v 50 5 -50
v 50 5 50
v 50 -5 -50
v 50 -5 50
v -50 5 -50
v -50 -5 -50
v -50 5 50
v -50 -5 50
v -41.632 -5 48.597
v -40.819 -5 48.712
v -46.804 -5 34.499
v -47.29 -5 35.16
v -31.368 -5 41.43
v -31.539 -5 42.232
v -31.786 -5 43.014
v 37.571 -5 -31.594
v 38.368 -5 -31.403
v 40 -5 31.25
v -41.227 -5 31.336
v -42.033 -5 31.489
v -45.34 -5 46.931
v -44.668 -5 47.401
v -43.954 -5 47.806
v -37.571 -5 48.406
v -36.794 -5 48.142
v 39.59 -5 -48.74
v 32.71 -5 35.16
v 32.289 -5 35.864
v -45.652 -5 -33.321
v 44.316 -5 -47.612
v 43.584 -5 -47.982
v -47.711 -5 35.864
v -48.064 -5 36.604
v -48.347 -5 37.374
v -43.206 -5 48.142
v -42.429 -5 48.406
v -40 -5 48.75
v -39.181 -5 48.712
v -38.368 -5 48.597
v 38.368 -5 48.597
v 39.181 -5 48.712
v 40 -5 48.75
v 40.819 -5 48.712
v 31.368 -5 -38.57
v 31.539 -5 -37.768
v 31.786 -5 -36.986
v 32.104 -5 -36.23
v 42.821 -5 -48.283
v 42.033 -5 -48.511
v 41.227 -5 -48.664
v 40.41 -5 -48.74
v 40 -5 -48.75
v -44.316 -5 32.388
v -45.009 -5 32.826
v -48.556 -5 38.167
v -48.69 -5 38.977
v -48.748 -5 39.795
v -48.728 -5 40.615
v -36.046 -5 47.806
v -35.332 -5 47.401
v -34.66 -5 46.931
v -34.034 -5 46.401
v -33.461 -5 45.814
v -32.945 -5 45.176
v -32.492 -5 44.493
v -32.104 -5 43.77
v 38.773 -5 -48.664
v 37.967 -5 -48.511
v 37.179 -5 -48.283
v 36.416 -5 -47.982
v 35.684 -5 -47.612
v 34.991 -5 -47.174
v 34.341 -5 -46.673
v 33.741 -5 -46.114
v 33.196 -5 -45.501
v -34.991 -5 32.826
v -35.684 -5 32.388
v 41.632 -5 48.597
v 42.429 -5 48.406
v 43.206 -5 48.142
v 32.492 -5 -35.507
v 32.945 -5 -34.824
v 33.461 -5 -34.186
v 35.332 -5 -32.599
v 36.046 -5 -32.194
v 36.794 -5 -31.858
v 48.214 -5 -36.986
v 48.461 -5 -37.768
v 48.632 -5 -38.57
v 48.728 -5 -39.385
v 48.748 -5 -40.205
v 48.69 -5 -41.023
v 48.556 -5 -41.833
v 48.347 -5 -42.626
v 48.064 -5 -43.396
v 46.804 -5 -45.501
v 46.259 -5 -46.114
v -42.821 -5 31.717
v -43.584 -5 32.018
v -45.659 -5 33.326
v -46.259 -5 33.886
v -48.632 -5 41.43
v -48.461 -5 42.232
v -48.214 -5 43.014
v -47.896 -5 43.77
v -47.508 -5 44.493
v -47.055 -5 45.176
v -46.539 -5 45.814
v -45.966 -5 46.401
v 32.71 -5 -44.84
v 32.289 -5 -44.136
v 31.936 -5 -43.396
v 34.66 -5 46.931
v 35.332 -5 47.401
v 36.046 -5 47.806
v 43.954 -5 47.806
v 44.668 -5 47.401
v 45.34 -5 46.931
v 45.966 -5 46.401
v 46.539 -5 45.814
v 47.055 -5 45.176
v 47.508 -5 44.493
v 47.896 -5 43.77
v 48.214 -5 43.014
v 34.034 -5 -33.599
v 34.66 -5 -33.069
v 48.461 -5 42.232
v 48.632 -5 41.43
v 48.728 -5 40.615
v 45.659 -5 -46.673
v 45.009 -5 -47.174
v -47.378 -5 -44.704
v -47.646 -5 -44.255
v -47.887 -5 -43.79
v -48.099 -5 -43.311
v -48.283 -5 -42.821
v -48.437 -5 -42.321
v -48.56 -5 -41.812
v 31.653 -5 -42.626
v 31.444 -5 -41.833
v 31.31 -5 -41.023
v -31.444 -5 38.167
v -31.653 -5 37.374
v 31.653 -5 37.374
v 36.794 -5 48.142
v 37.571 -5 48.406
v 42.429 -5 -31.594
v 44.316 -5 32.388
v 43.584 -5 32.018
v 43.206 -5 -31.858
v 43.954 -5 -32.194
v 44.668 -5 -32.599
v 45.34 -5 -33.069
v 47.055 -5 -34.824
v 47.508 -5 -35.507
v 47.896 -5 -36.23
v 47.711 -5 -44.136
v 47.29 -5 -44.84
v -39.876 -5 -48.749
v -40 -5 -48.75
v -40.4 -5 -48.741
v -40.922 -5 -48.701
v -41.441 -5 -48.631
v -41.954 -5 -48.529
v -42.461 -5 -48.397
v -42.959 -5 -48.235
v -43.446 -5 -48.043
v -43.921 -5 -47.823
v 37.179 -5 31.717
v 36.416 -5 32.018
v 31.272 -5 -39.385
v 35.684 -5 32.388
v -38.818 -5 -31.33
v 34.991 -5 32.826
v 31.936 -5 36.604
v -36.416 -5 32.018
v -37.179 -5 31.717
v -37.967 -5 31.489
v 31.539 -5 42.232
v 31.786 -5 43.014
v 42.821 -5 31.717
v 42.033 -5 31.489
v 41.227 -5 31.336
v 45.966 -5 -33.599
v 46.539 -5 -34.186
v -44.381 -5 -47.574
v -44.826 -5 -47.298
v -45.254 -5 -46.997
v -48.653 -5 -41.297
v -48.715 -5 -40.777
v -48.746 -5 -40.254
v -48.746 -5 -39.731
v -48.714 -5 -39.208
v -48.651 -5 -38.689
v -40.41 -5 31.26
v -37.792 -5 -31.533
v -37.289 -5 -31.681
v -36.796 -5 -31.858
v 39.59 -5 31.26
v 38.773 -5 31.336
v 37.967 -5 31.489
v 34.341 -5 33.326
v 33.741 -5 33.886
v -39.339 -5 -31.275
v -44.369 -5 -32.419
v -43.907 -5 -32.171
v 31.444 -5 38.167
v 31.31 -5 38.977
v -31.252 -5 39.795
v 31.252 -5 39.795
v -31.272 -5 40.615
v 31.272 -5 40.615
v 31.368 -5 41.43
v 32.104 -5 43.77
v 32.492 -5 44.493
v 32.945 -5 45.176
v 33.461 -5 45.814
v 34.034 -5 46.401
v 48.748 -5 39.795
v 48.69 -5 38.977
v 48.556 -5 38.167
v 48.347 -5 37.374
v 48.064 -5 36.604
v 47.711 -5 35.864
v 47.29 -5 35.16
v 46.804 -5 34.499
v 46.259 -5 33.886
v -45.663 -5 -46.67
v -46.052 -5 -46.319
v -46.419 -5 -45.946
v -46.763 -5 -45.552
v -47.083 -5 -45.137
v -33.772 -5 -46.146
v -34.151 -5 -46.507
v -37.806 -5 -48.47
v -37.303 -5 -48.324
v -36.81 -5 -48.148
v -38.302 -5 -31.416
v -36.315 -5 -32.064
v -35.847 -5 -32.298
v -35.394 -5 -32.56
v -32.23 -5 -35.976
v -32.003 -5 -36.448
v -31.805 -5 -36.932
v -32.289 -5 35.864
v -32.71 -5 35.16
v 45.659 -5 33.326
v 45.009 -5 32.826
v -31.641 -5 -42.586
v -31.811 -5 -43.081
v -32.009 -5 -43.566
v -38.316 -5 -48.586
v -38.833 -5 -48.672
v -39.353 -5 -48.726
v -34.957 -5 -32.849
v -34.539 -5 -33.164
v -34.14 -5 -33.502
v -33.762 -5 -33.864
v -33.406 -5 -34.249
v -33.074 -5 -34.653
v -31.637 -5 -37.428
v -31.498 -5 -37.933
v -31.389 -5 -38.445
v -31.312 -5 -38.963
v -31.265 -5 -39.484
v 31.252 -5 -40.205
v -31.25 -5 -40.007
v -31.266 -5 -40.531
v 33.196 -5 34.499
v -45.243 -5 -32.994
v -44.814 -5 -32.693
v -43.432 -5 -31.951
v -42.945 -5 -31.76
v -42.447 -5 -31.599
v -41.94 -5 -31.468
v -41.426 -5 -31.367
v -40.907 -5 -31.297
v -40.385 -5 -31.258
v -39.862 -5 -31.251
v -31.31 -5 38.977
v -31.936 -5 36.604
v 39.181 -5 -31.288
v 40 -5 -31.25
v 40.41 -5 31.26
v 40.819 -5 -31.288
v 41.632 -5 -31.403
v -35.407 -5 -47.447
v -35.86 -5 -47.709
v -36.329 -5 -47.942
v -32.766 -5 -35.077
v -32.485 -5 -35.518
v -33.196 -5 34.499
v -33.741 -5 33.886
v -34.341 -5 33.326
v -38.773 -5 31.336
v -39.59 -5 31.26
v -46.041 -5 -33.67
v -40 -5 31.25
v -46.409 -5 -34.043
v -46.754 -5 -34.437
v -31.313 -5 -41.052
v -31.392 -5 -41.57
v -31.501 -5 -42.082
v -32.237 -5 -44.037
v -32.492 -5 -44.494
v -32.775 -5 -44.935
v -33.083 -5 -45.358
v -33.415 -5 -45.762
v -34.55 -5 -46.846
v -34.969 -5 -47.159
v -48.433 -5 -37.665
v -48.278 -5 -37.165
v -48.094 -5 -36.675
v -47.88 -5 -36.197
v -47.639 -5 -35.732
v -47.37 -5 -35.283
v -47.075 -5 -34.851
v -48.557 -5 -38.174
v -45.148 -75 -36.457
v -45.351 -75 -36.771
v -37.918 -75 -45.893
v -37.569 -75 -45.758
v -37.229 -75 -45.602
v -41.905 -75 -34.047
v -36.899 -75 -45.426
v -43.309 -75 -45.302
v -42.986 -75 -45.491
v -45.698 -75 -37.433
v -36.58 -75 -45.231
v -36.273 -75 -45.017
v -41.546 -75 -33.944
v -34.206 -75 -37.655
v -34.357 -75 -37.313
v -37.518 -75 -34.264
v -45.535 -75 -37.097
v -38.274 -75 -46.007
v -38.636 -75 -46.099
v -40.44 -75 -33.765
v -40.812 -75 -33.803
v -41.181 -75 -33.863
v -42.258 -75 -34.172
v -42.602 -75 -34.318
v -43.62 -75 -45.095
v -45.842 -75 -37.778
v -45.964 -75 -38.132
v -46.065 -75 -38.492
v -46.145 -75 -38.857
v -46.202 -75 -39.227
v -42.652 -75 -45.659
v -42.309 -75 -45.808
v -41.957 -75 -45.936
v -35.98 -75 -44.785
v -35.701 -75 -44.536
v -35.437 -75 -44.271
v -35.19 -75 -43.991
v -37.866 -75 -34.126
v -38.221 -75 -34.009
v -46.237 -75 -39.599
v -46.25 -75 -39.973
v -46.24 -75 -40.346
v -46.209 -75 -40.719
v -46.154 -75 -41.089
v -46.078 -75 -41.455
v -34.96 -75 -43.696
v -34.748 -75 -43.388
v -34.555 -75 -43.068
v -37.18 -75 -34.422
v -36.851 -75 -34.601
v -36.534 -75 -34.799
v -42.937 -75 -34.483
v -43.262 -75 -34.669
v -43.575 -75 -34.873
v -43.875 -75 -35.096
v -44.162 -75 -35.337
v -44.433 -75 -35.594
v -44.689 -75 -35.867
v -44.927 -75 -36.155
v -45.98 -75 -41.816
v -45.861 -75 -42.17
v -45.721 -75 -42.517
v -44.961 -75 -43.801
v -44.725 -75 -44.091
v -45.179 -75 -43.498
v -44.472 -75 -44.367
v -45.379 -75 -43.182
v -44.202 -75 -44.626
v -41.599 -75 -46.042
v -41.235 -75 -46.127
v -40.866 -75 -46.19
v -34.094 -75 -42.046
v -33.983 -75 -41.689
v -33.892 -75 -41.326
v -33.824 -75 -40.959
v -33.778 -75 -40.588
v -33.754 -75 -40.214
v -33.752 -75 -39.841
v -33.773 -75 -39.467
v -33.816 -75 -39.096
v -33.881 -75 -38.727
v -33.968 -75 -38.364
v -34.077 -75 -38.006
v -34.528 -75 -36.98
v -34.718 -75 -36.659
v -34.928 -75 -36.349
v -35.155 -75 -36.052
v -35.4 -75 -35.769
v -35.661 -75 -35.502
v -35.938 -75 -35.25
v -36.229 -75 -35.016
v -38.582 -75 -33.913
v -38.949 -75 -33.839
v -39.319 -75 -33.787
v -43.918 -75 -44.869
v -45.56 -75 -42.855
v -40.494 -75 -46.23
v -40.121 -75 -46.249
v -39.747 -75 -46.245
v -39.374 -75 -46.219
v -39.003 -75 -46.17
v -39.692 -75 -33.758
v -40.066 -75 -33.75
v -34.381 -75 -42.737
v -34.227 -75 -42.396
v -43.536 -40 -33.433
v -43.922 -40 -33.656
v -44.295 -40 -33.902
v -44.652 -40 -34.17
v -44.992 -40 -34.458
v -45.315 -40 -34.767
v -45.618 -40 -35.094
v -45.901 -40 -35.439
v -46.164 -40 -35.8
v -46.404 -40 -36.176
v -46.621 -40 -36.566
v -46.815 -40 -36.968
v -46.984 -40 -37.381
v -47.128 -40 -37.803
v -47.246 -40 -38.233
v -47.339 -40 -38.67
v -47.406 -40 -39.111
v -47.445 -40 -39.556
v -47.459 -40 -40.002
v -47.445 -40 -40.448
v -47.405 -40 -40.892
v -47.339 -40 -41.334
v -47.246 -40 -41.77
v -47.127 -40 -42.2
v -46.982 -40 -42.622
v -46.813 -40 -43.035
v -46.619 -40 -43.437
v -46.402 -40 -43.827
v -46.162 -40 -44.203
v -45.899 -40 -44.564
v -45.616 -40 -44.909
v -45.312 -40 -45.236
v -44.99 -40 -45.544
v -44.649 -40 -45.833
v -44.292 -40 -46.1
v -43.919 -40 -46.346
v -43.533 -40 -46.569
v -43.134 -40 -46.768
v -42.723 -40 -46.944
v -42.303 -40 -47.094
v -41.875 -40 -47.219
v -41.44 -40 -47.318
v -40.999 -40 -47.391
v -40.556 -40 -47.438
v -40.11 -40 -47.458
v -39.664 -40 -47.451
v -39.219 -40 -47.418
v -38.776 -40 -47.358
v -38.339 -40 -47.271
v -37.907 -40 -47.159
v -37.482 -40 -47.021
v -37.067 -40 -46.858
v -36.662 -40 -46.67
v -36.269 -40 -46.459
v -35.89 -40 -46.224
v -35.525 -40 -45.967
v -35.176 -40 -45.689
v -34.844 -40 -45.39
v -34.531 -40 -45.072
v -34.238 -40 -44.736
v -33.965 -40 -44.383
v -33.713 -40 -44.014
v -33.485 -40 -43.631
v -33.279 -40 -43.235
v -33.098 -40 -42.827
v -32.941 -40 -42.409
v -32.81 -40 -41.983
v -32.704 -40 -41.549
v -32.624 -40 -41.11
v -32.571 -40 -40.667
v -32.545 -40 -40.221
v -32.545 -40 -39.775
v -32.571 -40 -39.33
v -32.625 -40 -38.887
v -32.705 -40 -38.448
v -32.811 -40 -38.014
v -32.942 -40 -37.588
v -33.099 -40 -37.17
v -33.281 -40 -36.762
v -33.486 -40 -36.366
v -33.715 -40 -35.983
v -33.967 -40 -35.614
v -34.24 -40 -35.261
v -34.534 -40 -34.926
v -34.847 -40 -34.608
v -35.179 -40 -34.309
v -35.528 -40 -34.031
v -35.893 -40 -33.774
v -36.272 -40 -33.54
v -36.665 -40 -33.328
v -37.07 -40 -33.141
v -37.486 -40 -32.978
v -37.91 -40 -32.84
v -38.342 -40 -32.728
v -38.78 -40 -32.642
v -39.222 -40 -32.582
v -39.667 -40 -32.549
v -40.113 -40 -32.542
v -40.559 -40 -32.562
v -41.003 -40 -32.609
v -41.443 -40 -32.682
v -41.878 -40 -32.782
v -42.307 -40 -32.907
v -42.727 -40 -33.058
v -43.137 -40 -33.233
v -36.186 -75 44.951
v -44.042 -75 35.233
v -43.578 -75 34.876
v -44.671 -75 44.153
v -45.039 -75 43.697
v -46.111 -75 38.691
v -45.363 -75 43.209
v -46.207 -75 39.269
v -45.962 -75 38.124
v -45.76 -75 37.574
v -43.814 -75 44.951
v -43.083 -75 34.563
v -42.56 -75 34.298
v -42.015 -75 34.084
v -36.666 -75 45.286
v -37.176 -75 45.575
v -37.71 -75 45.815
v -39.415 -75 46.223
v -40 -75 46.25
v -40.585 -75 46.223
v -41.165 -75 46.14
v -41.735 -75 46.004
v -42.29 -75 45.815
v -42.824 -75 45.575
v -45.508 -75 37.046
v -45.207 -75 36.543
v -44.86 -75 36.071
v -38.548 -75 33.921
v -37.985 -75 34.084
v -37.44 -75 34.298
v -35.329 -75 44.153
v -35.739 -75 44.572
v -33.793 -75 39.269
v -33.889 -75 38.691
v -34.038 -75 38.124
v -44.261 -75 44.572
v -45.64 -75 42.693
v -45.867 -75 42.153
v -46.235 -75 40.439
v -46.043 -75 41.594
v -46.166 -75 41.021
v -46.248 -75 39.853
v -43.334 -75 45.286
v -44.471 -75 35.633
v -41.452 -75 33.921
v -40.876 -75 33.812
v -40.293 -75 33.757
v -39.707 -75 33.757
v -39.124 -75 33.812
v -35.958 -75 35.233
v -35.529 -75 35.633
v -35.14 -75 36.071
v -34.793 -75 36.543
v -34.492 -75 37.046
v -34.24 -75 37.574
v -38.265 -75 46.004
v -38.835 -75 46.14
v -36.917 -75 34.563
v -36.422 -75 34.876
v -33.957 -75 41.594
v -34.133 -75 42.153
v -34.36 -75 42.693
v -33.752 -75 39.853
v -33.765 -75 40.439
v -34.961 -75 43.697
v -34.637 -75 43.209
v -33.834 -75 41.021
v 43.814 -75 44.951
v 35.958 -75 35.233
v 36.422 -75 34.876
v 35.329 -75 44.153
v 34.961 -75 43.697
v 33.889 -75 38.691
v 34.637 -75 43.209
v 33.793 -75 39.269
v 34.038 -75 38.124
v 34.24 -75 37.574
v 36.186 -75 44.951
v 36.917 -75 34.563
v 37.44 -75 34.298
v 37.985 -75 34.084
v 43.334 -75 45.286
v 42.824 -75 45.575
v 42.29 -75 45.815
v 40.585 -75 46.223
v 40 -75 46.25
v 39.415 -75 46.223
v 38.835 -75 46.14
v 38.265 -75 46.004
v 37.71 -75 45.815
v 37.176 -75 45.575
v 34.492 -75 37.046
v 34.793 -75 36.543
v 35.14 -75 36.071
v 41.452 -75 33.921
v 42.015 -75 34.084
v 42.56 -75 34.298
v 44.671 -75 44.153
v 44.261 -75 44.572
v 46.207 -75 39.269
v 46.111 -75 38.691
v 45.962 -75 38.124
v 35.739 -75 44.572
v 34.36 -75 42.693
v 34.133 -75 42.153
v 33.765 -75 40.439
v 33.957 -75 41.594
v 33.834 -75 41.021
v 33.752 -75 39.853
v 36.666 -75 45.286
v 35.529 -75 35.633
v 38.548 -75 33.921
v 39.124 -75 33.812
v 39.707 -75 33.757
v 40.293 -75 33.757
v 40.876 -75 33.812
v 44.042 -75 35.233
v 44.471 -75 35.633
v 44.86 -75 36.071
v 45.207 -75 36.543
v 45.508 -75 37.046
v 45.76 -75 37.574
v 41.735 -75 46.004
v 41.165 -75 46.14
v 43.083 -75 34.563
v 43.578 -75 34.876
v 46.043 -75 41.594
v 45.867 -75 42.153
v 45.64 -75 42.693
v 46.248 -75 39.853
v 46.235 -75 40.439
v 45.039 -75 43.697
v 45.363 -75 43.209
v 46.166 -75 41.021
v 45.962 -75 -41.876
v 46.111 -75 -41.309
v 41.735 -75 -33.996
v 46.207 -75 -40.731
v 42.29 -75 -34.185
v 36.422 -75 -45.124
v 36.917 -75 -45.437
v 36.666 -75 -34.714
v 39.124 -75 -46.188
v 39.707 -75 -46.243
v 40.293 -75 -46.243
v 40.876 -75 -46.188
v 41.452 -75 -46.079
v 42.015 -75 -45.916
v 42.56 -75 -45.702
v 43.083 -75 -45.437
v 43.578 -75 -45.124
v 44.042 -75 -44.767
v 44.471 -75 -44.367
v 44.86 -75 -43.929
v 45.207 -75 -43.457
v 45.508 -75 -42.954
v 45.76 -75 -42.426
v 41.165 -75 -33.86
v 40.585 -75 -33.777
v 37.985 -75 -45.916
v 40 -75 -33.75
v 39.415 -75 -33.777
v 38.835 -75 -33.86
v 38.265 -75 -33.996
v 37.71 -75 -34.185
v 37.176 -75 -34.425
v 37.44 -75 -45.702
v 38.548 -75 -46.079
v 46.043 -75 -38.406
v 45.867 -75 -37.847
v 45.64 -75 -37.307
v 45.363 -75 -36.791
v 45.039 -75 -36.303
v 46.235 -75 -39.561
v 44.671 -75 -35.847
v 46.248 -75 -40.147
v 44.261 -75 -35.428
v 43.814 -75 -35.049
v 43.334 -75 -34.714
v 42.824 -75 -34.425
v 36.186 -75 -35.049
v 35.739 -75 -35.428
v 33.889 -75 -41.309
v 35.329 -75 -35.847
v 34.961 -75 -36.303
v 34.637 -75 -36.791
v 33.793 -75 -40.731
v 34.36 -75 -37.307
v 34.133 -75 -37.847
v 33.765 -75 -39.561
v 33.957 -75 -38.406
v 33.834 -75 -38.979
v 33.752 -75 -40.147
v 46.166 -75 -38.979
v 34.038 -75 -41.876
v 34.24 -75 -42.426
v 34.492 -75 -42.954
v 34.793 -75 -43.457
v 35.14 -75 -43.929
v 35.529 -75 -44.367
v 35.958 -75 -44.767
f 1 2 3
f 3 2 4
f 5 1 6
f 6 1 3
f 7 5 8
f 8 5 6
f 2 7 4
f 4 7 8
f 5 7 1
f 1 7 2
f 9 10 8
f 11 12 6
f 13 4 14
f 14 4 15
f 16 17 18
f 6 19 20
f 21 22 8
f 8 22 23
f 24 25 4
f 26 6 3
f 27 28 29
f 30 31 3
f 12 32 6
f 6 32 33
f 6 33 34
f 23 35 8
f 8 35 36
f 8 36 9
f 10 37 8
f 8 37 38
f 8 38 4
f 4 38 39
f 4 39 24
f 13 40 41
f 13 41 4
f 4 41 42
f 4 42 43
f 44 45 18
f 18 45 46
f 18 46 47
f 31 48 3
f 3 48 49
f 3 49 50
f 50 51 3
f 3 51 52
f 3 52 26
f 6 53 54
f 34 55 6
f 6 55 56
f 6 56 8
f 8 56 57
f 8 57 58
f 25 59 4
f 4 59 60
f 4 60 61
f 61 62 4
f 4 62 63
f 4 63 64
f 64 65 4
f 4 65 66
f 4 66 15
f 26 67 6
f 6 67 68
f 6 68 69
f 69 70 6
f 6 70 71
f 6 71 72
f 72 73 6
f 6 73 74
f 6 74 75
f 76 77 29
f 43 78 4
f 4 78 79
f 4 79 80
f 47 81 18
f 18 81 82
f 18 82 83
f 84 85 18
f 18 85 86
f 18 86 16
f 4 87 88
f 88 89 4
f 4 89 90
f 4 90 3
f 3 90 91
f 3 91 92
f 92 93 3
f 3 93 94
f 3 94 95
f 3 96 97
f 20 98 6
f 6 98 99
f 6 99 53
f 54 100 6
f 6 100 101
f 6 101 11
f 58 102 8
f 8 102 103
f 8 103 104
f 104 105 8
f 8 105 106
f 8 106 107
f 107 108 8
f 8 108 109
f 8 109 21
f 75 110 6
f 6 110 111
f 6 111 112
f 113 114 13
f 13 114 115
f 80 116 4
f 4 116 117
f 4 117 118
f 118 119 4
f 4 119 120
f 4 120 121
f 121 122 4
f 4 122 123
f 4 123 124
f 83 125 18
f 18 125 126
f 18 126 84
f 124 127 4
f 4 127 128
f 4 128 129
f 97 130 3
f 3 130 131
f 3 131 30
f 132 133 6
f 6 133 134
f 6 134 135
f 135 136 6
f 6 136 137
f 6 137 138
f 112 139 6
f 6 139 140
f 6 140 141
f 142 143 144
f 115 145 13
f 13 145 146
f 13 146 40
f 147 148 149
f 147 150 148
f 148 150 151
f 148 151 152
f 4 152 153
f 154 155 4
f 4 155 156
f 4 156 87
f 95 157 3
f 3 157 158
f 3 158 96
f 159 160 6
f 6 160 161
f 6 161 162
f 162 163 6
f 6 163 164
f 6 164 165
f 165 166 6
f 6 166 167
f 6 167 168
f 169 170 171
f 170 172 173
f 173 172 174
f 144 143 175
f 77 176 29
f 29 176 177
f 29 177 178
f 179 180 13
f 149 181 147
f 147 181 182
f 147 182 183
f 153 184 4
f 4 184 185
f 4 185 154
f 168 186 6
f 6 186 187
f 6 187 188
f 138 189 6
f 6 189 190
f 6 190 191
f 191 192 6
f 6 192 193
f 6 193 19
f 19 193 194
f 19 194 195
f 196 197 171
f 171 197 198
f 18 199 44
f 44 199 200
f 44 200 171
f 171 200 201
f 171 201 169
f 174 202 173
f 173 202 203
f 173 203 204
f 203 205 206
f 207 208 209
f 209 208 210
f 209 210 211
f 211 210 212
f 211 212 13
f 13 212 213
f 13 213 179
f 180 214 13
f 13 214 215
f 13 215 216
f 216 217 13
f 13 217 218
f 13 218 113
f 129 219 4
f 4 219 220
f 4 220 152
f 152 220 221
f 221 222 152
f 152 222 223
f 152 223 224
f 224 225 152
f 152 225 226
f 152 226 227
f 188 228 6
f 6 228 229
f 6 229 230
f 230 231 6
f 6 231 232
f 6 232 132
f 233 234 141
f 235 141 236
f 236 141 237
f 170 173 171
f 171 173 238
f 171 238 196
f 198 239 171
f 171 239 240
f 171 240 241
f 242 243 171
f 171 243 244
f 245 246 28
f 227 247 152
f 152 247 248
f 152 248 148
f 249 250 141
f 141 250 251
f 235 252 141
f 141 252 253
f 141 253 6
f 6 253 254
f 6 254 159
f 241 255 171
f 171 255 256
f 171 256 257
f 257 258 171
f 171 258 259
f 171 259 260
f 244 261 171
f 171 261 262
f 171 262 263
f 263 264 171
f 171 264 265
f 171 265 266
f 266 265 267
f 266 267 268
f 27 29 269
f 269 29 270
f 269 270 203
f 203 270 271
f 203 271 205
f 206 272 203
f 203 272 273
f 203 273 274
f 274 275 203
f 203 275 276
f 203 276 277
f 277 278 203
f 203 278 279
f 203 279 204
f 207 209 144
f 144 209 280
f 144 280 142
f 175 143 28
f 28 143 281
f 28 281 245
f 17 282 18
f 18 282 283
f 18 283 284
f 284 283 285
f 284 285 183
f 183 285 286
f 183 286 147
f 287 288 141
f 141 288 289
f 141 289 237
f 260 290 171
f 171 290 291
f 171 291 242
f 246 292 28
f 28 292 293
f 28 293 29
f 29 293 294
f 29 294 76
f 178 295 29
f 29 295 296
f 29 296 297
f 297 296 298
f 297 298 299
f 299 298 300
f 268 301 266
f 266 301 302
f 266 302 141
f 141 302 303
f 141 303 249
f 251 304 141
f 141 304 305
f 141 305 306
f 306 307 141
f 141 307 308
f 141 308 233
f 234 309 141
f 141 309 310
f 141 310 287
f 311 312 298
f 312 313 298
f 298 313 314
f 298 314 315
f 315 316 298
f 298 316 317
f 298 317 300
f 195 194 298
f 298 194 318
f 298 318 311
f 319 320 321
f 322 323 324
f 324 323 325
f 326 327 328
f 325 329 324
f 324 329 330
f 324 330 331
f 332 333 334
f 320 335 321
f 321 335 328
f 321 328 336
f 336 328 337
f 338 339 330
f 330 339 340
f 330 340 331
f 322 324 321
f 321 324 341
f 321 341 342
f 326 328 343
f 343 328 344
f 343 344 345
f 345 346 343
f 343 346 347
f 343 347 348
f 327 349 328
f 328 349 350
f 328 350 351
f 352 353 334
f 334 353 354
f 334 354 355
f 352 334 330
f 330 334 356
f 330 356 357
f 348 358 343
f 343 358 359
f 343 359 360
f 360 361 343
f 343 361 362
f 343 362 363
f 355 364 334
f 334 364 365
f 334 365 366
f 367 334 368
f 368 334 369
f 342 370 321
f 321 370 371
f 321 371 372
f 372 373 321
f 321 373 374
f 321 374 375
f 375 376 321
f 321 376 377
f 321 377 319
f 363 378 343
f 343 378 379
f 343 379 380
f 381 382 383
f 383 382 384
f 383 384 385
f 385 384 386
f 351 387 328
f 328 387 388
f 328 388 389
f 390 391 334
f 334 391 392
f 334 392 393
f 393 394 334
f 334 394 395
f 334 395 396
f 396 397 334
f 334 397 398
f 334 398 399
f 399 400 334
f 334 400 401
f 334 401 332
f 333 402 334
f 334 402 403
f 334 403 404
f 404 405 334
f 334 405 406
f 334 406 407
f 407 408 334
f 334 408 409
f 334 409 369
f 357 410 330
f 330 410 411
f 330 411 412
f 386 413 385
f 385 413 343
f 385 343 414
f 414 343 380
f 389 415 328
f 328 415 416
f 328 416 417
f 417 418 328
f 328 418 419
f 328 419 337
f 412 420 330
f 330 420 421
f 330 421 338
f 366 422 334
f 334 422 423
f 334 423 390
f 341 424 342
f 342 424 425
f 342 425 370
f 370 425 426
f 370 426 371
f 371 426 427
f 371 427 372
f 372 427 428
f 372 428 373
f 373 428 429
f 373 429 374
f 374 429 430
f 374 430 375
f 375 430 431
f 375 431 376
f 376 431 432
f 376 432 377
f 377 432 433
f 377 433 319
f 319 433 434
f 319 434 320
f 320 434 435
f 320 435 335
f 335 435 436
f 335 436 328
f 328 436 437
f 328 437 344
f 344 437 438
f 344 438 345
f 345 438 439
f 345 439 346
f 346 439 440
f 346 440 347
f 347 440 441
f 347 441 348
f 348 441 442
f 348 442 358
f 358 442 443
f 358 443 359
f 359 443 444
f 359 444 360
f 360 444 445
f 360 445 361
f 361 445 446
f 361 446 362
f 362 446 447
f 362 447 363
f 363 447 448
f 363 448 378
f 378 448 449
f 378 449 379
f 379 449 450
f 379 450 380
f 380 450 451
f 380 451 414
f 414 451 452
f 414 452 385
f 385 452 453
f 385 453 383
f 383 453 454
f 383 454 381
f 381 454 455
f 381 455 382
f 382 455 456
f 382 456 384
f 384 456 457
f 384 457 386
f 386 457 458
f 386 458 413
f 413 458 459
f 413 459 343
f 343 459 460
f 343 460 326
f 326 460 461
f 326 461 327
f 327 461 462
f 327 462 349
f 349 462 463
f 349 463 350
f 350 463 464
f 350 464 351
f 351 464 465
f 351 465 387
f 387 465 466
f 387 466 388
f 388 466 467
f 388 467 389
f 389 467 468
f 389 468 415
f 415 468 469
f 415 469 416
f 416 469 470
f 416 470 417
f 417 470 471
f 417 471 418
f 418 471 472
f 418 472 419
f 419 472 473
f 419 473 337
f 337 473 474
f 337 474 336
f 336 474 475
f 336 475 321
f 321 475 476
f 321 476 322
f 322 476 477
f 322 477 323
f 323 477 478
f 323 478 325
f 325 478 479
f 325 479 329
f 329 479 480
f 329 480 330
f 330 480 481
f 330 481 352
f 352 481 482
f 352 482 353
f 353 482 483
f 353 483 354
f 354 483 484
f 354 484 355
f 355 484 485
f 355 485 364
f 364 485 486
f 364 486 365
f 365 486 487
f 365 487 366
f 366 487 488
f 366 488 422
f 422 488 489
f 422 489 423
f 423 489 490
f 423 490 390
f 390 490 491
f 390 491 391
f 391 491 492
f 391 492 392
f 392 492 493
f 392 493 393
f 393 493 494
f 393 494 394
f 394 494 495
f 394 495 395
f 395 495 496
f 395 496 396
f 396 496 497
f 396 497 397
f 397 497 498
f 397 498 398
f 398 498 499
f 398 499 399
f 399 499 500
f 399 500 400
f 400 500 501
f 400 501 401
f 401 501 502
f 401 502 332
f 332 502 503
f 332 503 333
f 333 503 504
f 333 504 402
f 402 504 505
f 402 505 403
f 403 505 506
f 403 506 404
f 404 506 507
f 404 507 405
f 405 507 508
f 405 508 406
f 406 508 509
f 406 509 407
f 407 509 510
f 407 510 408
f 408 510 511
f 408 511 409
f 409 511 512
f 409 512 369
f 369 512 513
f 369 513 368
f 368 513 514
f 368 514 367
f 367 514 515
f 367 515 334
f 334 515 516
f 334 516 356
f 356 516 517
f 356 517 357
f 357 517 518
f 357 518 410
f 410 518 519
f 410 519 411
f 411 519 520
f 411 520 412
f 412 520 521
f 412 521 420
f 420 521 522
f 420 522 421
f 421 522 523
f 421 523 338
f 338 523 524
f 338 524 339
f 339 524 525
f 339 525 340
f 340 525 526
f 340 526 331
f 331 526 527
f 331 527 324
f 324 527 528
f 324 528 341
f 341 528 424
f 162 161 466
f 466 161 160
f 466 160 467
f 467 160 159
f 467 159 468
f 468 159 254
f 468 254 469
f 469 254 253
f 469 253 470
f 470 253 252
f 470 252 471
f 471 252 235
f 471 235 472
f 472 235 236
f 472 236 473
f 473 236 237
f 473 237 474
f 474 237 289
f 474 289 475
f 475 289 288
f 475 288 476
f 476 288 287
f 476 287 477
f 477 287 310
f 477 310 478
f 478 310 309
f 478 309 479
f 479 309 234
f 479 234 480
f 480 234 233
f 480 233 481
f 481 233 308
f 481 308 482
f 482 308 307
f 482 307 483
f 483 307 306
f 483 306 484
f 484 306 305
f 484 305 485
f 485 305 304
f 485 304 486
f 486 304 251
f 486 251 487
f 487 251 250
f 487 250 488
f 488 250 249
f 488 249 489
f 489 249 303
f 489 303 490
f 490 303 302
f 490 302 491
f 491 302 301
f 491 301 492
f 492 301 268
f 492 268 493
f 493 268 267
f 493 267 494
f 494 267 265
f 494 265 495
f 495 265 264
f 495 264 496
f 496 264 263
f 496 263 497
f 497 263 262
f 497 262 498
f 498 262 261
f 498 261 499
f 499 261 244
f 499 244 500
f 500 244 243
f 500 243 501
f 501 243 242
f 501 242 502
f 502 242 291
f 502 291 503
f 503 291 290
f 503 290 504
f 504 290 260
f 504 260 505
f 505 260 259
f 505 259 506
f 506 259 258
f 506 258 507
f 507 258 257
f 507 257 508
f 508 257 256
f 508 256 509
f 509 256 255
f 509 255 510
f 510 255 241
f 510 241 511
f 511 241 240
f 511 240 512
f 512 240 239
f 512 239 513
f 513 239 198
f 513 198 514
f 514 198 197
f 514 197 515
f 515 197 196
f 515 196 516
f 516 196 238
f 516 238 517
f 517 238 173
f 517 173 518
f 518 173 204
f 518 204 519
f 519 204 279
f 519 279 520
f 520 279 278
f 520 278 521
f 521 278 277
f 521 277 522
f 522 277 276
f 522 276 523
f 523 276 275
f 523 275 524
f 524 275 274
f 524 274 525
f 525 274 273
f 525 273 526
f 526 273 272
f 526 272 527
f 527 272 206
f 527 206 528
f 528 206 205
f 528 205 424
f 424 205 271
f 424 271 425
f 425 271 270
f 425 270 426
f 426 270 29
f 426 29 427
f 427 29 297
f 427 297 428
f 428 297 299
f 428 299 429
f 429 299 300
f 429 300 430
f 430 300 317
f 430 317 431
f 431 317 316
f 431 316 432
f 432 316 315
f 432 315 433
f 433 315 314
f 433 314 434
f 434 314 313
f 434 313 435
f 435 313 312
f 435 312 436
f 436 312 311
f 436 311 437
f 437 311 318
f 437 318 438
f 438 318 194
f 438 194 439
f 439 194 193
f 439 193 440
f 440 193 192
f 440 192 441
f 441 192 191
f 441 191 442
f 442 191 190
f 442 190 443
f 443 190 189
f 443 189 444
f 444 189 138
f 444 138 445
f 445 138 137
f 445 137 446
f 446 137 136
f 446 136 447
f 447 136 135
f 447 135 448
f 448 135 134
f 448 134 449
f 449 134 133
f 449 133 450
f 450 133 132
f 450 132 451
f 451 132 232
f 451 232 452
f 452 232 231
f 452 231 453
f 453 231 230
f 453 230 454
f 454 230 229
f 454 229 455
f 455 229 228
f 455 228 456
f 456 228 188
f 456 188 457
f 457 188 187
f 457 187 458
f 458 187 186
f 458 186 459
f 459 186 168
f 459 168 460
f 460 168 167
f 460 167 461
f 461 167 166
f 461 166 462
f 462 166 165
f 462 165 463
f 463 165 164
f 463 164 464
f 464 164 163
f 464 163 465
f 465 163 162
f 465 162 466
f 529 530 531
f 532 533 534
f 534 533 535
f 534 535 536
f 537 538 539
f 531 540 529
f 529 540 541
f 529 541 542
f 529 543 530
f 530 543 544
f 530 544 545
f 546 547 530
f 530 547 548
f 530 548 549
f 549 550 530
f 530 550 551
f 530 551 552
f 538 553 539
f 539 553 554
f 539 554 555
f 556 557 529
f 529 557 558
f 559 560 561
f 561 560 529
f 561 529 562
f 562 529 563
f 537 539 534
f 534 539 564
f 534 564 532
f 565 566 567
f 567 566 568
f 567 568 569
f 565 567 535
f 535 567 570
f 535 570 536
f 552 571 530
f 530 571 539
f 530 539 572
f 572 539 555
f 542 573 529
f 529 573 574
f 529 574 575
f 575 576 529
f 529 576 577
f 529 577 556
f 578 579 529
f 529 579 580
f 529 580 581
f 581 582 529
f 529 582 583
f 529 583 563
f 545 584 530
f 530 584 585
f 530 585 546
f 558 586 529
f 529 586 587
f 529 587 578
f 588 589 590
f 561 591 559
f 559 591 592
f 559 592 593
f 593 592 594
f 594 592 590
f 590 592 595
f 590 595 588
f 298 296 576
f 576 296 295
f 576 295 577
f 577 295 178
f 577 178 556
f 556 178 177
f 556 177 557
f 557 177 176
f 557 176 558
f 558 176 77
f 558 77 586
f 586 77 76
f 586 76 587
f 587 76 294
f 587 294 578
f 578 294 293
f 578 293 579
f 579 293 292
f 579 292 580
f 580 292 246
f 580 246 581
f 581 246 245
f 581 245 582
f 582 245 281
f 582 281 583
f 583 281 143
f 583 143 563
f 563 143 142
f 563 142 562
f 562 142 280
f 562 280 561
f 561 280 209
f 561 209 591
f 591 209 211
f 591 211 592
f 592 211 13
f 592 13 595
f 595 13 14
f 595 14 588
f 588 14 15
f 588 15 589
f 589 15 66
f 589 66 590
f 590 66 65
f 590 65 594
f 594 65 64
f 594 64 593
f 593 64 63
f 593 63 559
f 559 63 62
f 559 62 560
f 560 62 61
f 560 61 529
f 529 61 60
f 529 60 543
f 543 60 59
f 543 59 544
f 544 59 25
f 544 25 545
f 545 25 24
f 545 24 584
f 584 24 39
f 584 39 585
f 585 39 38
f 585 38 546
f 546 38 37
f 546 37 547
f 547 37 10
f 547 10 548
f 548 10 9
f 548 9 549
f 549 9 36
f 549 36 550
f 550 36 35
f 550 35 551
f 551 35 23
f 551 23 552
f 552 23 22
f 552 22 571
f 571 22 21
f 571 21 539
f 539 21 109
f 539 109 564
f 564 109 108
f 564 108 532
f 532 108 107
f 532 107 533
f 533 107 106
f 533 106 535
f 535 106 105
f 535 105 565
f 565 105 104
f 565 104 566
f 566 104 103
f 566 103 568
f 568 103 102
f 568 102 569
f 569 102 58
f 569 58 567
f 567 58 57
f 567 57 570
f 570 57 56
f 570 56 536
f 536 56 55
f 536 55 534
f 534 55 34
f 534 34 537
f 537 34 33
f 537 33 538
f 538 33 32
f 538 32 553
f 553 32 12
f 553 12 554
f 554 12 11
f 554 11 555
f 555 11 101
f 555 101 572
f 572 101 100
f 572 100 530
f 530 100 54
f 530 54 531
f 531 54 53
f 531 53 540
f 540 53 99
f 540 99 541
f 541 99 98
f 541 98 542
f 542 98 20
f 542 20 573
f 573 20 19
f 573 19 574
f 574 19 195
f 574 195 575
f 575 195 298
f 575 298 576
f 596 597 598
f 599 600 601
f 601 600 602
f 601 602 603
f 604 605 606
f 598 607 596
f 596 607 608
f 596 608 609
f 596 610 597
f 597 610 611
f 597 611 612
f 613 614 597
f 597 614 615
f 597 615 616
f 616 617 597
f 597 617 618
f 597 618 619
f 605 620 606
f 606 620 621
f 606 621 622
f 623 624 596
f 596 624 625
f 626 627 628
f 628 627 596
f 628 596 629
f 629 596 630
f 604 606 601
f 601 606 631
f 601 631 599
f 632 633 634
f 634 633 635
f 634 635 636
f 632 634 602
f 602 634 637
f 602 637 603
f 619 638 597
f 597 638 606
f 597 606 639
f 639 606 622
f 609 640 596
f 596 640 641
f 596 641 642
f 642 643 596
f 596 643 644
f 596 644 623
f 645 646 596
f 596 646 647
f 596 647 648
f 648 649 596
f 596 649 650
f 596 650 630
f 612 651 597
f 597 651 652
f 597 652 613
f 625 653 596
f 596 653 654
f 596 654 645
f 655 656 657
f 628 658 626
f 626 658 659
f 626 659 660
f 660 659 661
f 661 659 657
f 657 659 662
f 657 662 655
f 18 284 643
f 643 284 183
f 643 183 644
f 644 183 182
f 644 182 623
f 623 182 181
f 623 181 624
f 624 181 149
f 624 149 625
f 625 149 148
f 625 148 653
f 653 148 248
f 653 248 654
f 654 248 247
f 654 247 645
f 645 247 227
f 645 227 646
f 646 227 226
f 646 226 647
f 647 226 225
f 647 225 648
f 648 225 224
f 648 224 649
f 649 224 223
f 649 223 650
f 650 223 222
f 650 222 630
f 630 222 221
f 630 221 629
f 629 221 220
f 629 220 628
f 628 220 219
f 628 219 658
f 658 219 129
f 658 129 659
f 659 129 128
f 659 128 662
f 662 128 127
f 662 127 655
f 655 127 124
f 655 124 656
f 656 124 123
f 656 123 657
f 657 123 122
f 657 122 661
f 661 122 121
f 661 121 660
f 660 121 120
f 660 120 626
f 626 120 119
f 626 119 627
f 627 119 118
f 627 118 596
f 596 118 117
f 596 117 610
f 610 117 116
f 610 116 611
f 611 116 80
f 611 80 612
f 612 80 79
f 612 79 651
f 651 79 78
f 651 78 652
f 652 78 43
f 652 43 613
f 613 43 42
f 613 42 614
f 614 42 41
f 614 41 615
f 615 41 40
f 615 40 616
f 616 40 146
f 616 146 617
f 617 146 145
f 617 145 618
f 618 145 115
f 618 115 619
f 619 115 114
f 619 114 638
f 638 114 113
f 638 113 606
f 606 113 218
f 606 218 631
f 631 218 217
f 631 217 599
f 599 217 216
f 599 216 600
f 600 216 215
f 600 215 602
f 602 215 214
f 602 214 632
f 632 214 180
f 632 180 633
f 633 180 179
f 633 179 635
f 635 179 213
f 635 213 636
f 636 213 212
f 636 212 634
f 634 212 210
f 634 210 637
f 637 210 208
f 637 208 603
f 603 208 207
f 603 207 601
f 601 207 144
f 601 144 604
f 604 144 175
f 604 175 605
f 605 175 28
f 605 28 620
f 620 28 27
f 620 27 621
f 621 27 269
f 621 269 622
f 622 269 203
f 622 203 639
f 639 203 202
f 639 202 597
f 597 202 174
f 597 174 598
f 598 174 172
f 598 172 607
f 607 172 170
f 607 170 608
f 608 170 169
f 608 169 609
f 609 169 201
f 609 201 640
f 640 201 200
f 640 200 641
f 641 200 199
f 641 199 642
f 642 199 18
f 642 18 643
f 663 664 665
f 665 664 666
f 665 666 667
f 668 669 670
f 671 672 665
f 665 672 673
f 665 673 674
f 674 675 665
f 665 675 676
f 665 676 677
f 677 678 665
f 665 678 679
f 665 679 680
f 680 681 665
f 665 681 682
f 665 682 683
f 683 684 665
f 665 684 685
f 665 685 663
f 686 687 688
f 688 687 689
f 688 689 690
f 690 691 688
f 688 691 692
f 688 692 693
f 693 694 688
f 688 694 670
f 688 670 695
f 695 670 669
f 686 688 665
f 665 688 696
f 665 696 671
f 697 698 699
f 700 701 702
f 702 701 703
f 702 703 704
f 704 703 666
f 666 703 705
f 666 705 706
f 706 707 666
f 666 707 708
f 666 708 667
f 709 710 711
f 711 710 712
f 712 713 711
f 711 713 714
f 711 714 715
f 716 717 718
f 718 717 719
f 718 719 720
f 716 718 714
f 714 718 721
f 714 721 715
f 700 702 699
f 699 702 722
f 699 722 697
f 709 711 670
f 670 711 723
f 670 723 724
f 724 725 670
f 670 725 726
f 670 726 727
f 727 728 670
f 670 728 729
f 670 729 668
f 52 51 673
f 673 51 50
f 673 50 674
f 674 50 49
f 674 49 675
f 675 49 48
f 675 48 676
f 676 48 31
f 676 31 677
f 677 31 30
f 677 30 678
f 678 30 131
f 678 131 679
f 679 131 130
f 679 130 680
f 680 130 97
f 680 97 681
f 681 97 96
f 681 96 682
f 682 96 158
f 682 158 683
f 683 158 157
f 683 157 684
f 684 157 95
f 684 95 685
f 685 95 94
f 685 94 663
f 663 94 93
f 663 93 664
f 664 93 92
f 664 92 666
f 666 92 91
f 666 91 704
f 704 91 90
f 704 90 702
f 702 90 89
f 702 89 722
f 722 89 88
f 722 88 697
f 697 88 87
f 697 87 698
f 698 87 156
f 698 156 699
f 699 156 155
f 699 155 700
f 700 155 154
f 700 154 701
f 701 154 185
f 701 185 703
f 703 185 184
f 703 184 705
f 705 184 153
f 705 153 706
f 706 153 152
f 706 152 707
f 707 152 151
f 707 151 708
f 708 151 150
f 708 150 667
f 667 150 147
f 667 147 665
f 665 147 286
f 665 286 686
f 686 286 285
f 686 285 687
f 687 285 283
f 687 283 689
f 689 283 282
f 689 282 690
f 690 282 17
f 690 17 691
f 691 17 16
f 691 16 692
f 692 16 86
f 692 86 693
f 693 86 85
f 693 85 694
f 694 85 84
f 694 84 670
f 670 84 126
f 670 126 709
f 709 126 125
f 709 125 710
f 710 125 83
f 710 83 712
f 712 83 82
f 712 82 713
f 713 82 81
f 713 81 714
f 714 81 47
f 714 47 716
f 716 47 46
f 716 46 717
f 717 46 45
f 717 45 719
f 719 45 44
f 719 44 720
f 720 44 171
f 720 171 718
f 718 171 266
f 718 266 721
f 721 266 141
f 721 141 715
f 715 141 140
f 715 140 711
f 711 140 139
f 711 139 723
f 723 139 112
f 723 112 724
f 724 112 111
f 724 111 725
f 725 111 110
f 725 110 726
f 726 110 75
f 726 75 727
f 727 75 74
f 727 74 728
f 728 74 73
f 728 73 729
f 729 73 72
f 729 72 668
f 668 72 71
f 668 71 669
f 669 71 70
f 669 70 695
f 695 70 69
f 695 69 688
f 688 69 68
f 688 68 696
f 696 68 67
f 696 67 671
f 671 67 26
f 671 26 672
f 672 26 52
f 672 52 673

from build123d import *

# Parameters (mm, degrees)
SKETCH1_W           = 100
SKETCH1_H           = 100
BOSS_EXTRUDE1_DEPTH = 5
SKETCH2_4_R         = 8.75
SKETCH3_3_R         = 6.25
SKETCH2_5_R         = 8.75
SKETCH3_4_R         = 6.25
SKETCH2_6_R         = 8.75
SKETCH3_5_R         = 6.25


with BuildPart() as part:
    # Sketch1 → Boss-Extrude1 (new, symmetric)
    with BuildSketch(Plane(origin=(0, 0, 0), x_dir=(1, 0, 0), z_dir=(0, 1, 0))):
        Rectangle(SKETCH1_W, SKETCH1_H)
    extrude(amount=BOSS_EXTRUDE1_DEPTH, both=True)

    # Loft1: read off the stored shape, not the designer's step
    # Loft1: loft between two sections, ruled curve by curve
    loft1_from = [
        Edge.make_bspline([(-44.368650168, -5, -32.418615185), (-59.531419798, -5, -41.15591552), (-50.794119462, -5, -56.31868515), (-35.631349832, -5, -47.581384815), (-20.468580202, -5, -38.84408448), (-29.205880538, -5, -23.68131485), (-44.368650168, -5, -32.418615185)], [0, 0, 0, 0, 0.5, 0.5, 0.5, 1, 1, 1, 1], 3, [1, 0.333333333, 0.333333333, 1, 0.333333333, 0.333333333, 1]),
    ]
    loft1_to = [
        Edge.make_bspline([(-41.905194087, -75, -34.047459745), (-53.810274598, -75, -37.857847919), (-49.999886423, -75, -49.76292843), (-38.094805913, -75, -45.952540255), (-26.189725402, -75, -42.142152081), (-30.000113577, -75, -30.23707157), (-41.905194087, -75, -34.047459745)], [0, 0, 0, 0, 0.5, 0.5, 0.5, 1, 1, 1, 1], 3, [1, 0.333333333, 0.333333333, 1, 0.333333333, 0.333333333, 1]),
    ]
    loft1 = Solid(Shell([*[Face.make_surface_from_curves(loft1_from[k], loft1_to[k]) for k in range(1)], Face(Wire(loft1_from)), Face(Wire(loft1_to))]))
    add(loft1)

    # Sketch2<4> → Loft2 section 0
    with BuildSketch(Plane.XZ.offset(5)):
        with Locations((-40, 40)):
            Circle(SKETCH2_4_R)
    # Sketch3<3> → Loft2 section 1
    with BuildSketch(Plane(origin=(0, -75, 0), x_dir=(1, 0, 0), z_dir=(0, 1, 0))):
        with Locations((-40, -40)):
            Circle(SKETCH3_3_R)
    loft()

    # Sketch2<5> → Loft3 section 0
    with BuildSketch(Plane.XZ.offset(5)):
        with Locations((40, 40)):
            Circle(SKETCH2_5_R)
    # Sketch3<4> → Loft3 section 1
    with BuildSketch(Plane(origin=(0, -75, 0), x_dir=(1, 0, 0), z_dir=(0, 1, 0))):
        with Locations((40, -40)):
            Circle(SKETCH3_4_R)
    loft()

    # Sketch2<6> → Loft4 section 0
    with BuildSketch(Plane.XZ.offset(5)):
        with Locations((40, -40)):
            Circle(SKETCH2_6_R)
    # Sketch3<5> → Loft4 section 1
    with BuildSketch(Plane(origin=(0, -75, 0), x_dir=(1, 0, 0), z_dir=(0, 1, 0))):
        with Locations((40, 40)):
            Circle(SKETCH3_5_R)
    loft()


solid = part.part
